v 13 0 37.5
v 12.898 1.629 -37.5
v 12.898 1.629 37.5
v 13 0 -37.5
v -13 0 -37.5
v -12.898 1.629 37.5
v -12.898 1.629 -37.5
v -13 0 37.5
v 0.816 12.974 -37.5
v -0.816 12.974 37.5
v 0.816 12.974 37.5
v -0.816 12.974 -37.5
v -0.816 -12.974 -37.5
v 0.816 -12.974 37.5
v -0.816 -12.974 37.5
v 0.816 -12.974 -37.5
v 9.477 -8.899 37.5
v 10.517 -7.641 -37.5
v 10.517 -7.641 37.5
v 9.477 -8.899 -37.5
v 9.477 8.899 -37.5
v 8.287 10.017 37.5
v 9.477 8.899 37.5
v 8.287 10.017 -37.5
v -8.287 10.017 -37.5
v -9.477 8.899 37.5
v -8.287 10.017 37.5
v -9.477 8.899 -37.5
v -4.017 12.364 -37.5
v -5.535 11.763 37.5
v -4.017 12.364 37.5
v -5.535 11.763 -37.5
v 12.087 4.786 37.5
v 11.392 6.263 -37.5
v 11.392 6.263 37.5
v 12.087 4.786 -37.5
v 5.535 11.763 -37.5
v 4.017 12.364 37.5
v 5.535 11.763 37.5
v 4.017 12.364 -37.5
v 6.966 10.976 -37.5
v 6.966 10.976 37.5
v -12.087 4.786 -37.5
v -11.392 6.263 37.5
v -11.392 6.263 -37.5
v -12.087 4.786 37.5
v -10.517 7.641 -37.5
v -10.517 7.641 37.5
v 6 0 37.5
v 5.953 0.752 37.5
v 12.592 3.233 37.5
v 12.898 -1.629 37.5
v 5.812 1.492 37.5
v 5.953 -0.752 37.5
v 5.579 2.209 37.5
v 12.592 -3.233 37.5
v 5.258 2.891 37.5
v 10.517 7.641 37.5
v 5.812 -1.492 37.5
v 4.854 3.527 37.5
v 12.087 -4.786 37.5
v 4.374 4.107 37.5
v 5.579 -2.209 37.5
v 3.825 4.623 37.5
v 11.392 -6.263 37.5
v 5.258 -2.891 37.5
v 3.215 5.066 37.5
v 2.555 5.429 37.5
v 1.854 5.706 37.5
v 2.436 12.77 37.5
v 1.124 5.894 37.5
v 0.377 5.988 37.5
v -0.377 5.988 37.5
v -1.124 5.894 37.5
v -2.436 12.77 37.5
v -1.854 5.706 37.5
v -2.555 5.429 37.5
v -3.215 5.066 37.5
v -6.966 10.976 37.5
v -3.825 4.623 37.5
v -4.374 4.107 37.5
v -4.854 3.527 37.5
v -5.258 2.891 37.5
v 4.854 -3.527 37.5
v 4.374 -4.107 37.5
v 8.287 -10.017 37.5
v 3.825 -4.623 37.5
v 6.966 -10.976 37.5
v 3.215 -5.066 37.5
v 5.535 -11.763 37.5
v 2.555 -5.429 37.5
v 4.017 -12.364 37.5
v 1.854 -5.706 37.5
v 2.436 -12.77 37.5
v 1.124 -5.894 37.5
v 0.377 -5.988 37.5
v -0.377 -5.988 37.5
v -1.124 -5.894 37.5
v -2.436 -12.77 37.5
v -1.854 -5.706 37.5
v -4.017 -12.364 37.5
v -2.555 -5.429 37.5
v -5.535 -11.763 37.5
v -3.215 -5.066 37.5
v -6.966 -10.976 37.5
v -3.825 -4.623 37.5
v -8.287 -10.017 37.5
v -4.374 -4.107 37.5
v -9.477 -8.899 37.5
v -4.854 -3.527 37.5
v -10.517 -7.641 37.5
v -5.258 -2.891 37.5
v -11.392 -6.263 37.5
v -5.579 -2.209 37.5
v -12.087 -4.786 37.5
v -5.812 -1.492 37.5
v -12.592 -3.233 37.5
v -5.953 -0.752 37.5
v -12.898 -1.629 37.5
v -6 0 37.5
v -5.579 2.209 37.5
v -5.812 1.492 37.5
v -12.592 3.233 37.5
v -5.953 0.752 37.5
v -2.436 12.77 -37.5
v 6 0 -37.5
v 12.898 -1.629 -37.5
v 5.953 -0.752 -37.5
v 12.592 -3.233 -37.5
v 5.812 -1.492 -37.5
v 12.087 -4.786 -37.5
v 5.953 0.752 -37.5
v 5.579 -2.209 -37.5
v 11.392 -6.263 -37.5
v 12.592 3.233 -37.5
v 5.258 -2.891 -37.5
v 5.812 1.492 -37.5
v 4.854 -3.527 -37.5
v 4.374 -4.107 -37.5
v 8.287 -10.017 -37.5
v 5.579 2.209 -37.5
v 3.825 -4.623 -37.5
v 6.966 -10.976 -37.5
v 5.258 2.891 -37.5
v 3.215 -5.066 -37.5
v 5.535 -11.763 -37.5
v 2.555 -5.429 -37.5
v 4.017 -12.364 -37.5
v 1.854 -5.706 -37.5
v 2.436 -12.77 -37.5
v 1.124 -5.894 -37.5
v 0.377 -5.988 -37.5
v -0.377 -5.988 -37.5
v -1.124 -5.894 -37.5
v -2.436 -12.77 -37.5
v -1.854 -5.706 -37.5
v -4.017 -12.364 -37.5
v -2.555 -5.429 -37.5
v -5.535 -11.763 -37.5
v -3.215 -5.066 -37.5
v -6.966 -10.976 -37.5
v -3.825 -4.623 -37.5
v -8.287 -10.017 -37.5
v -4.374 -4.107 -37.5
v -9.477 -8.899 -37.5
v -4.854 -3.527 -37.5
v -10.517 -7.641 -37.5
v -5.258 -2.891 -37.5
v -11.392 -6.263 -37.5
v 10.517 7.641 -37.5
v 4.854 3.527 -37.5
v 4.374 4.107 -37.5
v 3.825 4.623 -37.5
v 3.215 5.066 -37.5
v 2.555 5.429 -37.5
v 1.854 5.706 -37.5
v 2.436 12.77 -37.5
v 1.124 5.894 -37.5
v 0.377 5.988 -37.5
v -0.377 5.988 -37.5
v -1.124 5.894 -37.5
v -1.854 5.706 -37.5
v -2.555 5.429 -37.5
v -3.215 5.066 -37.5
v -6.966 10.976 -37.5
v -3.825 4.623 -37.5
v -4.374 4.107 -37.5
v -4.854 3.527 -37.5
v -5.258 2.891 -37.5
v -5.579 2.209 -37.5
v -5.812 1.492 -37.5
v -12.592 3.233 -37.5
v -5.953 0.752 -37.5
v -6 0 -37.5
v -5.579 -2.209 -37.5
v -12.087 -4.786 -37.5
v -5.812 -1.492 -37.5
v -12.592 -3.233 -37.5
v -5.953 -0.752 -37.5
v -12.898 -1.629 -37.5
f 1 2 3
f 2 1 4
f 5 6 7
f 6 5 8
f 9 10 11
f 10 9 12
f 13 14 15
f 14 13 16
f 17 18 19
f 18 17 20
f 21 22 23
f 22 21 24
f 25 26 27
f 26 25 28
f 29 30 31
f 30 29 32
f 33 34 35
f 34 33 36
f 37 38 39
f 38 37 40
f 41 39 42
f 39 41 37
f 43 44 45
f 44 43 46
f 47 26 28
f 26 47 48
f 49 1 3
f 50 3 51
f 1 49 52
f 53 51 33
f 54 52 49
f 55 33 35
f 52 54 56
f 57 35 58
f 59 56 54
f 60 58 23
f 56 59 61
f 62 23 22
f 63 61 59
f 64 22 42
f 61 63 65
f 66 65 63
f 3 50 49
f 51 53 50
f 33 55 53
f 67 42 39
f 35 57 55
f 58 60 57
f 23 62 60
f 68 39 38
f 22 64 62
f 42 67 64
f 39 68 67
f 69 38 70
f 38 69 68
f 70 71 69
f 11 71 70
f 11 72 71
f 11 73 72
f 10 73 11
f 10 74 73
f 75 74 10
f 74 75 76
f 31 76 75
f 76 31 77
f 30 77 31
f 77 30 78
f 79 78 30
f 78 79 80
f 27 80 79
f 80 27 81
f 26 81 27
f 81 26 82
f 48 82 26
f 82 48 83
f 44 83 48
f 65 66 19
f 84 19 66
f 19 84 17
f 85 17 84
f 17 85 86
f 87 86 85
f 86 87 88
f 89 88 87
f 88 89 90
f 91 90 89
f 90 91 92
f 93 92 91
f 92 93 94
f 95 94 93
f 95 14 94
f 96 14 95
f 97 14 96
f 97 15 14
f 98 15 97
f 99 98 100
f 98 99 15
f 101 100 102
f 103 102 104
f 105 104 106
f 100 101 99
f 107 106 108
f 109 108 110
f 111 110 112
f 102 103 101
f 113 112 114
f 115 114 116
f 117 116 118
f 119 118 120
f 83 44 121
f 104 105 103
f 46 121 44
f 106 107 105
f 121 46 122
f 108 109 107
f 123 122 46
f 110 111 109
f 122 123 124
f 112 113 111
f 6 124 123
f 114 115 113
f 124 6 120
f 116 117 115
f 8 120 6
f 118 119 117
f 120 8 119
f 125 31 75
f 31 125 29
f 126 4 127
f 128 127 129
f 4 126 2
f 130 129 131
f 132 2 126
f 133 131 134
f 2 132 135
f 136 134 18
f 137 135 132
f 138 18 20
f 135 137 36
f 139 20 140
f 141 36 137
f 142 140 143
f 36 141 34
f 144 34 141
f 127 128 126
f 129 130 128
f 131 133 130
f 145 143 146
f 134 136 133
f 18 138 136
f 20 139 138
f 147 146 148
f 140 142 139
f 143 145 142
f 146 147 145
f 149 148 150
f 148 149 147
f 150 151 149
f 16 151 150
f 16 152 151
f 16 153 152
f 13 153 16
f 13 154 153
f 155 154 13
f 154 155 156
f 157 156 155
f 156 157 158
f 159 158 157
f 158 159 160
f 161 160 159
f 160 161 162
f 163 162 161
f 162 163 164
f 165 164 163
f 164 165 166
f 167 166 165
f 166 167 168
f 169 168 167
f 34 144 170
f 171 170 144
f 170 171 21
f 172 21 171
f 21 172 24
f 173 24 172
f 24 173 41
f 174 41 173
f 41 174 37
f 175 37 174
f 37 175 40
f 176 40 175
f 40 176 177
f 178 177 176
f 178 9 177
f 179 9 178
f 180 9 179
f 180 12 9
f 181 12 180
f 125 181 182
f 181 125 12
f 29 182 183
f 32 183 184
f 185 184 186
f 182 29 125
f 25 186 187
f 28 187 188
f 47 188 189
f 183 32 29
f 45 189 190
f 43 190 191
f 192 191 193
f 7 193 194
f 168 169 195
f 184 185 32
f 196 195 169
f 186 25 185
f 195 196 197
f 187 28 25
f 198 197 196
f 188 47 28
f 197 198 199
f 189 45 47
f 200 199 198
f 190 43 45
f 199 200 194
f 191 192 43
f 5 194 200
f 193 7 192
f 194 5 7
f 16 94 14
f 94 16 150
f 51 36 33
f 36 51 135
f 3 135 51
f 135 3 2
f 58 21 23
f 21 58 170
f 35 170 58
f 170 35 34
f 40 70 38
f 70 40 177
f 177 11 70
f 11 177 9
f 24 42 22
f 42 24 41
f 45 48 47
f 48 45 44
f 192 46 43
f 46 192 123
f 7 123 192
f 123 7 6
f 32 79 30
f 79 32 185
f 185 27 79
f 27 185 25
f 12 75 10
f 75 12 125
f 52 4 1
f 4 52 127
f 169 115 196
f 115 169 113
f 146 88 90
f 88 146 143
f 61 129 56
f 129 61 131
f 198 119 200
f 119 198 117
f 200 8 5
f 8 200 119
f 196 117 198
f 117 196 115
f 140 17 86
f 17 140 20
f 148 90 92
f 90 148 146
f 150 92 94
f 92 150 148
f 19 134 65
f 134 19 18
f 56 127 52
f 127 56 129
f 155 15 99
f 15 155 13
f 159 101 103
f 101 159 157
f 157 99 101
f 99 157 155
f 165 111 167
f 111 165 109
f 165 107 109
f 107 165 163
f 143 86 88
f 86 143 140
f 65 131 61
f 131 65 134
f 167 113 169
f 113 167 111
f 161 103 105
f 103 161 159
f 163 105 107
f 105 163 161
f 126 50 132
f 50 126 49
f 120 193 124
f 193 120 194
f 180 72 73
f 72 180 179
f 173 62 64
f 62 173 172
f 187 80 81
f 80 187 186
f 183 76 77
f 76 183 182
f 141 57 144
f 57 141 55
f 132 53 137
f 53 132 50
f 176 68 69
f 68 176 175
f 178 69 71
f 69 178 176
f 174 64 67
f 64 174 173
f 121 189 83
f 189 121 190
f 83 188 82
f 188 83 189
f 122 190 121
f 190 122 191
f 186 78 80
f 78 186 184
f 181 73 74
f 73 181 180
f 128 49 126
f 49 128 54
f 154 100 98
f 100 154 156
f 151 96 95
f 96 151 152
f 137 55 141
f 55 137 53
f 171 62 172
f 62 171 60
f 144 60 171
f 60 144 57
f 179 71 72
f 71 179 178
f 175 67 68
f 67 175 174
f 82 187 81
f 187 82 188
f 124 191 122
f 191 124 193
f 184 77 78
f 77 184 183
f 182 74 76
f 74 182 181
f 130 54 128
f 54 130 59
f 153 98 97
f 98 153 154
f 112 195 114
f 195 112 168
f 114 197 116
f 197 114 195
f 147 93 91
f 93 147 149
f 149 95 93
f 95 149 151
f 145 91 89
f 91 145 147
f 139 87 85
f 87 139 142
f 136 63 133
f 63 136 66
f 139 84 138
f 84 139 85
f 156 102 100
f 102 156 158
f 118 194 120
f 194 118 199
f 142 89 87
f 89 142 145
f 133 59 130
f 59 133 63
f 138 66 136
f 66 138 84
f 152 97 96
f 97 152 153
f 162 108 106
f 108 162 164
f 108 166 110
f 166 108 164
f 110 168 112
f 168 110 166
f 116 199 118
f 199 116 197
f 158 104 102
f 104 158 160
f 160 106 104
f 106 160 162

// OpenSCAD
$fn = 50;


difference() {
	union() {
		translate(v = [0, 0, -37.5000000000]) {
			cylinder(h = 75, r = 13.0000000000);
		}
	}
	union() {
		translate(v = [0, 0, -100.0000000000]) {
			cylinder(h = 200, r = 6);
		}
	}
}
